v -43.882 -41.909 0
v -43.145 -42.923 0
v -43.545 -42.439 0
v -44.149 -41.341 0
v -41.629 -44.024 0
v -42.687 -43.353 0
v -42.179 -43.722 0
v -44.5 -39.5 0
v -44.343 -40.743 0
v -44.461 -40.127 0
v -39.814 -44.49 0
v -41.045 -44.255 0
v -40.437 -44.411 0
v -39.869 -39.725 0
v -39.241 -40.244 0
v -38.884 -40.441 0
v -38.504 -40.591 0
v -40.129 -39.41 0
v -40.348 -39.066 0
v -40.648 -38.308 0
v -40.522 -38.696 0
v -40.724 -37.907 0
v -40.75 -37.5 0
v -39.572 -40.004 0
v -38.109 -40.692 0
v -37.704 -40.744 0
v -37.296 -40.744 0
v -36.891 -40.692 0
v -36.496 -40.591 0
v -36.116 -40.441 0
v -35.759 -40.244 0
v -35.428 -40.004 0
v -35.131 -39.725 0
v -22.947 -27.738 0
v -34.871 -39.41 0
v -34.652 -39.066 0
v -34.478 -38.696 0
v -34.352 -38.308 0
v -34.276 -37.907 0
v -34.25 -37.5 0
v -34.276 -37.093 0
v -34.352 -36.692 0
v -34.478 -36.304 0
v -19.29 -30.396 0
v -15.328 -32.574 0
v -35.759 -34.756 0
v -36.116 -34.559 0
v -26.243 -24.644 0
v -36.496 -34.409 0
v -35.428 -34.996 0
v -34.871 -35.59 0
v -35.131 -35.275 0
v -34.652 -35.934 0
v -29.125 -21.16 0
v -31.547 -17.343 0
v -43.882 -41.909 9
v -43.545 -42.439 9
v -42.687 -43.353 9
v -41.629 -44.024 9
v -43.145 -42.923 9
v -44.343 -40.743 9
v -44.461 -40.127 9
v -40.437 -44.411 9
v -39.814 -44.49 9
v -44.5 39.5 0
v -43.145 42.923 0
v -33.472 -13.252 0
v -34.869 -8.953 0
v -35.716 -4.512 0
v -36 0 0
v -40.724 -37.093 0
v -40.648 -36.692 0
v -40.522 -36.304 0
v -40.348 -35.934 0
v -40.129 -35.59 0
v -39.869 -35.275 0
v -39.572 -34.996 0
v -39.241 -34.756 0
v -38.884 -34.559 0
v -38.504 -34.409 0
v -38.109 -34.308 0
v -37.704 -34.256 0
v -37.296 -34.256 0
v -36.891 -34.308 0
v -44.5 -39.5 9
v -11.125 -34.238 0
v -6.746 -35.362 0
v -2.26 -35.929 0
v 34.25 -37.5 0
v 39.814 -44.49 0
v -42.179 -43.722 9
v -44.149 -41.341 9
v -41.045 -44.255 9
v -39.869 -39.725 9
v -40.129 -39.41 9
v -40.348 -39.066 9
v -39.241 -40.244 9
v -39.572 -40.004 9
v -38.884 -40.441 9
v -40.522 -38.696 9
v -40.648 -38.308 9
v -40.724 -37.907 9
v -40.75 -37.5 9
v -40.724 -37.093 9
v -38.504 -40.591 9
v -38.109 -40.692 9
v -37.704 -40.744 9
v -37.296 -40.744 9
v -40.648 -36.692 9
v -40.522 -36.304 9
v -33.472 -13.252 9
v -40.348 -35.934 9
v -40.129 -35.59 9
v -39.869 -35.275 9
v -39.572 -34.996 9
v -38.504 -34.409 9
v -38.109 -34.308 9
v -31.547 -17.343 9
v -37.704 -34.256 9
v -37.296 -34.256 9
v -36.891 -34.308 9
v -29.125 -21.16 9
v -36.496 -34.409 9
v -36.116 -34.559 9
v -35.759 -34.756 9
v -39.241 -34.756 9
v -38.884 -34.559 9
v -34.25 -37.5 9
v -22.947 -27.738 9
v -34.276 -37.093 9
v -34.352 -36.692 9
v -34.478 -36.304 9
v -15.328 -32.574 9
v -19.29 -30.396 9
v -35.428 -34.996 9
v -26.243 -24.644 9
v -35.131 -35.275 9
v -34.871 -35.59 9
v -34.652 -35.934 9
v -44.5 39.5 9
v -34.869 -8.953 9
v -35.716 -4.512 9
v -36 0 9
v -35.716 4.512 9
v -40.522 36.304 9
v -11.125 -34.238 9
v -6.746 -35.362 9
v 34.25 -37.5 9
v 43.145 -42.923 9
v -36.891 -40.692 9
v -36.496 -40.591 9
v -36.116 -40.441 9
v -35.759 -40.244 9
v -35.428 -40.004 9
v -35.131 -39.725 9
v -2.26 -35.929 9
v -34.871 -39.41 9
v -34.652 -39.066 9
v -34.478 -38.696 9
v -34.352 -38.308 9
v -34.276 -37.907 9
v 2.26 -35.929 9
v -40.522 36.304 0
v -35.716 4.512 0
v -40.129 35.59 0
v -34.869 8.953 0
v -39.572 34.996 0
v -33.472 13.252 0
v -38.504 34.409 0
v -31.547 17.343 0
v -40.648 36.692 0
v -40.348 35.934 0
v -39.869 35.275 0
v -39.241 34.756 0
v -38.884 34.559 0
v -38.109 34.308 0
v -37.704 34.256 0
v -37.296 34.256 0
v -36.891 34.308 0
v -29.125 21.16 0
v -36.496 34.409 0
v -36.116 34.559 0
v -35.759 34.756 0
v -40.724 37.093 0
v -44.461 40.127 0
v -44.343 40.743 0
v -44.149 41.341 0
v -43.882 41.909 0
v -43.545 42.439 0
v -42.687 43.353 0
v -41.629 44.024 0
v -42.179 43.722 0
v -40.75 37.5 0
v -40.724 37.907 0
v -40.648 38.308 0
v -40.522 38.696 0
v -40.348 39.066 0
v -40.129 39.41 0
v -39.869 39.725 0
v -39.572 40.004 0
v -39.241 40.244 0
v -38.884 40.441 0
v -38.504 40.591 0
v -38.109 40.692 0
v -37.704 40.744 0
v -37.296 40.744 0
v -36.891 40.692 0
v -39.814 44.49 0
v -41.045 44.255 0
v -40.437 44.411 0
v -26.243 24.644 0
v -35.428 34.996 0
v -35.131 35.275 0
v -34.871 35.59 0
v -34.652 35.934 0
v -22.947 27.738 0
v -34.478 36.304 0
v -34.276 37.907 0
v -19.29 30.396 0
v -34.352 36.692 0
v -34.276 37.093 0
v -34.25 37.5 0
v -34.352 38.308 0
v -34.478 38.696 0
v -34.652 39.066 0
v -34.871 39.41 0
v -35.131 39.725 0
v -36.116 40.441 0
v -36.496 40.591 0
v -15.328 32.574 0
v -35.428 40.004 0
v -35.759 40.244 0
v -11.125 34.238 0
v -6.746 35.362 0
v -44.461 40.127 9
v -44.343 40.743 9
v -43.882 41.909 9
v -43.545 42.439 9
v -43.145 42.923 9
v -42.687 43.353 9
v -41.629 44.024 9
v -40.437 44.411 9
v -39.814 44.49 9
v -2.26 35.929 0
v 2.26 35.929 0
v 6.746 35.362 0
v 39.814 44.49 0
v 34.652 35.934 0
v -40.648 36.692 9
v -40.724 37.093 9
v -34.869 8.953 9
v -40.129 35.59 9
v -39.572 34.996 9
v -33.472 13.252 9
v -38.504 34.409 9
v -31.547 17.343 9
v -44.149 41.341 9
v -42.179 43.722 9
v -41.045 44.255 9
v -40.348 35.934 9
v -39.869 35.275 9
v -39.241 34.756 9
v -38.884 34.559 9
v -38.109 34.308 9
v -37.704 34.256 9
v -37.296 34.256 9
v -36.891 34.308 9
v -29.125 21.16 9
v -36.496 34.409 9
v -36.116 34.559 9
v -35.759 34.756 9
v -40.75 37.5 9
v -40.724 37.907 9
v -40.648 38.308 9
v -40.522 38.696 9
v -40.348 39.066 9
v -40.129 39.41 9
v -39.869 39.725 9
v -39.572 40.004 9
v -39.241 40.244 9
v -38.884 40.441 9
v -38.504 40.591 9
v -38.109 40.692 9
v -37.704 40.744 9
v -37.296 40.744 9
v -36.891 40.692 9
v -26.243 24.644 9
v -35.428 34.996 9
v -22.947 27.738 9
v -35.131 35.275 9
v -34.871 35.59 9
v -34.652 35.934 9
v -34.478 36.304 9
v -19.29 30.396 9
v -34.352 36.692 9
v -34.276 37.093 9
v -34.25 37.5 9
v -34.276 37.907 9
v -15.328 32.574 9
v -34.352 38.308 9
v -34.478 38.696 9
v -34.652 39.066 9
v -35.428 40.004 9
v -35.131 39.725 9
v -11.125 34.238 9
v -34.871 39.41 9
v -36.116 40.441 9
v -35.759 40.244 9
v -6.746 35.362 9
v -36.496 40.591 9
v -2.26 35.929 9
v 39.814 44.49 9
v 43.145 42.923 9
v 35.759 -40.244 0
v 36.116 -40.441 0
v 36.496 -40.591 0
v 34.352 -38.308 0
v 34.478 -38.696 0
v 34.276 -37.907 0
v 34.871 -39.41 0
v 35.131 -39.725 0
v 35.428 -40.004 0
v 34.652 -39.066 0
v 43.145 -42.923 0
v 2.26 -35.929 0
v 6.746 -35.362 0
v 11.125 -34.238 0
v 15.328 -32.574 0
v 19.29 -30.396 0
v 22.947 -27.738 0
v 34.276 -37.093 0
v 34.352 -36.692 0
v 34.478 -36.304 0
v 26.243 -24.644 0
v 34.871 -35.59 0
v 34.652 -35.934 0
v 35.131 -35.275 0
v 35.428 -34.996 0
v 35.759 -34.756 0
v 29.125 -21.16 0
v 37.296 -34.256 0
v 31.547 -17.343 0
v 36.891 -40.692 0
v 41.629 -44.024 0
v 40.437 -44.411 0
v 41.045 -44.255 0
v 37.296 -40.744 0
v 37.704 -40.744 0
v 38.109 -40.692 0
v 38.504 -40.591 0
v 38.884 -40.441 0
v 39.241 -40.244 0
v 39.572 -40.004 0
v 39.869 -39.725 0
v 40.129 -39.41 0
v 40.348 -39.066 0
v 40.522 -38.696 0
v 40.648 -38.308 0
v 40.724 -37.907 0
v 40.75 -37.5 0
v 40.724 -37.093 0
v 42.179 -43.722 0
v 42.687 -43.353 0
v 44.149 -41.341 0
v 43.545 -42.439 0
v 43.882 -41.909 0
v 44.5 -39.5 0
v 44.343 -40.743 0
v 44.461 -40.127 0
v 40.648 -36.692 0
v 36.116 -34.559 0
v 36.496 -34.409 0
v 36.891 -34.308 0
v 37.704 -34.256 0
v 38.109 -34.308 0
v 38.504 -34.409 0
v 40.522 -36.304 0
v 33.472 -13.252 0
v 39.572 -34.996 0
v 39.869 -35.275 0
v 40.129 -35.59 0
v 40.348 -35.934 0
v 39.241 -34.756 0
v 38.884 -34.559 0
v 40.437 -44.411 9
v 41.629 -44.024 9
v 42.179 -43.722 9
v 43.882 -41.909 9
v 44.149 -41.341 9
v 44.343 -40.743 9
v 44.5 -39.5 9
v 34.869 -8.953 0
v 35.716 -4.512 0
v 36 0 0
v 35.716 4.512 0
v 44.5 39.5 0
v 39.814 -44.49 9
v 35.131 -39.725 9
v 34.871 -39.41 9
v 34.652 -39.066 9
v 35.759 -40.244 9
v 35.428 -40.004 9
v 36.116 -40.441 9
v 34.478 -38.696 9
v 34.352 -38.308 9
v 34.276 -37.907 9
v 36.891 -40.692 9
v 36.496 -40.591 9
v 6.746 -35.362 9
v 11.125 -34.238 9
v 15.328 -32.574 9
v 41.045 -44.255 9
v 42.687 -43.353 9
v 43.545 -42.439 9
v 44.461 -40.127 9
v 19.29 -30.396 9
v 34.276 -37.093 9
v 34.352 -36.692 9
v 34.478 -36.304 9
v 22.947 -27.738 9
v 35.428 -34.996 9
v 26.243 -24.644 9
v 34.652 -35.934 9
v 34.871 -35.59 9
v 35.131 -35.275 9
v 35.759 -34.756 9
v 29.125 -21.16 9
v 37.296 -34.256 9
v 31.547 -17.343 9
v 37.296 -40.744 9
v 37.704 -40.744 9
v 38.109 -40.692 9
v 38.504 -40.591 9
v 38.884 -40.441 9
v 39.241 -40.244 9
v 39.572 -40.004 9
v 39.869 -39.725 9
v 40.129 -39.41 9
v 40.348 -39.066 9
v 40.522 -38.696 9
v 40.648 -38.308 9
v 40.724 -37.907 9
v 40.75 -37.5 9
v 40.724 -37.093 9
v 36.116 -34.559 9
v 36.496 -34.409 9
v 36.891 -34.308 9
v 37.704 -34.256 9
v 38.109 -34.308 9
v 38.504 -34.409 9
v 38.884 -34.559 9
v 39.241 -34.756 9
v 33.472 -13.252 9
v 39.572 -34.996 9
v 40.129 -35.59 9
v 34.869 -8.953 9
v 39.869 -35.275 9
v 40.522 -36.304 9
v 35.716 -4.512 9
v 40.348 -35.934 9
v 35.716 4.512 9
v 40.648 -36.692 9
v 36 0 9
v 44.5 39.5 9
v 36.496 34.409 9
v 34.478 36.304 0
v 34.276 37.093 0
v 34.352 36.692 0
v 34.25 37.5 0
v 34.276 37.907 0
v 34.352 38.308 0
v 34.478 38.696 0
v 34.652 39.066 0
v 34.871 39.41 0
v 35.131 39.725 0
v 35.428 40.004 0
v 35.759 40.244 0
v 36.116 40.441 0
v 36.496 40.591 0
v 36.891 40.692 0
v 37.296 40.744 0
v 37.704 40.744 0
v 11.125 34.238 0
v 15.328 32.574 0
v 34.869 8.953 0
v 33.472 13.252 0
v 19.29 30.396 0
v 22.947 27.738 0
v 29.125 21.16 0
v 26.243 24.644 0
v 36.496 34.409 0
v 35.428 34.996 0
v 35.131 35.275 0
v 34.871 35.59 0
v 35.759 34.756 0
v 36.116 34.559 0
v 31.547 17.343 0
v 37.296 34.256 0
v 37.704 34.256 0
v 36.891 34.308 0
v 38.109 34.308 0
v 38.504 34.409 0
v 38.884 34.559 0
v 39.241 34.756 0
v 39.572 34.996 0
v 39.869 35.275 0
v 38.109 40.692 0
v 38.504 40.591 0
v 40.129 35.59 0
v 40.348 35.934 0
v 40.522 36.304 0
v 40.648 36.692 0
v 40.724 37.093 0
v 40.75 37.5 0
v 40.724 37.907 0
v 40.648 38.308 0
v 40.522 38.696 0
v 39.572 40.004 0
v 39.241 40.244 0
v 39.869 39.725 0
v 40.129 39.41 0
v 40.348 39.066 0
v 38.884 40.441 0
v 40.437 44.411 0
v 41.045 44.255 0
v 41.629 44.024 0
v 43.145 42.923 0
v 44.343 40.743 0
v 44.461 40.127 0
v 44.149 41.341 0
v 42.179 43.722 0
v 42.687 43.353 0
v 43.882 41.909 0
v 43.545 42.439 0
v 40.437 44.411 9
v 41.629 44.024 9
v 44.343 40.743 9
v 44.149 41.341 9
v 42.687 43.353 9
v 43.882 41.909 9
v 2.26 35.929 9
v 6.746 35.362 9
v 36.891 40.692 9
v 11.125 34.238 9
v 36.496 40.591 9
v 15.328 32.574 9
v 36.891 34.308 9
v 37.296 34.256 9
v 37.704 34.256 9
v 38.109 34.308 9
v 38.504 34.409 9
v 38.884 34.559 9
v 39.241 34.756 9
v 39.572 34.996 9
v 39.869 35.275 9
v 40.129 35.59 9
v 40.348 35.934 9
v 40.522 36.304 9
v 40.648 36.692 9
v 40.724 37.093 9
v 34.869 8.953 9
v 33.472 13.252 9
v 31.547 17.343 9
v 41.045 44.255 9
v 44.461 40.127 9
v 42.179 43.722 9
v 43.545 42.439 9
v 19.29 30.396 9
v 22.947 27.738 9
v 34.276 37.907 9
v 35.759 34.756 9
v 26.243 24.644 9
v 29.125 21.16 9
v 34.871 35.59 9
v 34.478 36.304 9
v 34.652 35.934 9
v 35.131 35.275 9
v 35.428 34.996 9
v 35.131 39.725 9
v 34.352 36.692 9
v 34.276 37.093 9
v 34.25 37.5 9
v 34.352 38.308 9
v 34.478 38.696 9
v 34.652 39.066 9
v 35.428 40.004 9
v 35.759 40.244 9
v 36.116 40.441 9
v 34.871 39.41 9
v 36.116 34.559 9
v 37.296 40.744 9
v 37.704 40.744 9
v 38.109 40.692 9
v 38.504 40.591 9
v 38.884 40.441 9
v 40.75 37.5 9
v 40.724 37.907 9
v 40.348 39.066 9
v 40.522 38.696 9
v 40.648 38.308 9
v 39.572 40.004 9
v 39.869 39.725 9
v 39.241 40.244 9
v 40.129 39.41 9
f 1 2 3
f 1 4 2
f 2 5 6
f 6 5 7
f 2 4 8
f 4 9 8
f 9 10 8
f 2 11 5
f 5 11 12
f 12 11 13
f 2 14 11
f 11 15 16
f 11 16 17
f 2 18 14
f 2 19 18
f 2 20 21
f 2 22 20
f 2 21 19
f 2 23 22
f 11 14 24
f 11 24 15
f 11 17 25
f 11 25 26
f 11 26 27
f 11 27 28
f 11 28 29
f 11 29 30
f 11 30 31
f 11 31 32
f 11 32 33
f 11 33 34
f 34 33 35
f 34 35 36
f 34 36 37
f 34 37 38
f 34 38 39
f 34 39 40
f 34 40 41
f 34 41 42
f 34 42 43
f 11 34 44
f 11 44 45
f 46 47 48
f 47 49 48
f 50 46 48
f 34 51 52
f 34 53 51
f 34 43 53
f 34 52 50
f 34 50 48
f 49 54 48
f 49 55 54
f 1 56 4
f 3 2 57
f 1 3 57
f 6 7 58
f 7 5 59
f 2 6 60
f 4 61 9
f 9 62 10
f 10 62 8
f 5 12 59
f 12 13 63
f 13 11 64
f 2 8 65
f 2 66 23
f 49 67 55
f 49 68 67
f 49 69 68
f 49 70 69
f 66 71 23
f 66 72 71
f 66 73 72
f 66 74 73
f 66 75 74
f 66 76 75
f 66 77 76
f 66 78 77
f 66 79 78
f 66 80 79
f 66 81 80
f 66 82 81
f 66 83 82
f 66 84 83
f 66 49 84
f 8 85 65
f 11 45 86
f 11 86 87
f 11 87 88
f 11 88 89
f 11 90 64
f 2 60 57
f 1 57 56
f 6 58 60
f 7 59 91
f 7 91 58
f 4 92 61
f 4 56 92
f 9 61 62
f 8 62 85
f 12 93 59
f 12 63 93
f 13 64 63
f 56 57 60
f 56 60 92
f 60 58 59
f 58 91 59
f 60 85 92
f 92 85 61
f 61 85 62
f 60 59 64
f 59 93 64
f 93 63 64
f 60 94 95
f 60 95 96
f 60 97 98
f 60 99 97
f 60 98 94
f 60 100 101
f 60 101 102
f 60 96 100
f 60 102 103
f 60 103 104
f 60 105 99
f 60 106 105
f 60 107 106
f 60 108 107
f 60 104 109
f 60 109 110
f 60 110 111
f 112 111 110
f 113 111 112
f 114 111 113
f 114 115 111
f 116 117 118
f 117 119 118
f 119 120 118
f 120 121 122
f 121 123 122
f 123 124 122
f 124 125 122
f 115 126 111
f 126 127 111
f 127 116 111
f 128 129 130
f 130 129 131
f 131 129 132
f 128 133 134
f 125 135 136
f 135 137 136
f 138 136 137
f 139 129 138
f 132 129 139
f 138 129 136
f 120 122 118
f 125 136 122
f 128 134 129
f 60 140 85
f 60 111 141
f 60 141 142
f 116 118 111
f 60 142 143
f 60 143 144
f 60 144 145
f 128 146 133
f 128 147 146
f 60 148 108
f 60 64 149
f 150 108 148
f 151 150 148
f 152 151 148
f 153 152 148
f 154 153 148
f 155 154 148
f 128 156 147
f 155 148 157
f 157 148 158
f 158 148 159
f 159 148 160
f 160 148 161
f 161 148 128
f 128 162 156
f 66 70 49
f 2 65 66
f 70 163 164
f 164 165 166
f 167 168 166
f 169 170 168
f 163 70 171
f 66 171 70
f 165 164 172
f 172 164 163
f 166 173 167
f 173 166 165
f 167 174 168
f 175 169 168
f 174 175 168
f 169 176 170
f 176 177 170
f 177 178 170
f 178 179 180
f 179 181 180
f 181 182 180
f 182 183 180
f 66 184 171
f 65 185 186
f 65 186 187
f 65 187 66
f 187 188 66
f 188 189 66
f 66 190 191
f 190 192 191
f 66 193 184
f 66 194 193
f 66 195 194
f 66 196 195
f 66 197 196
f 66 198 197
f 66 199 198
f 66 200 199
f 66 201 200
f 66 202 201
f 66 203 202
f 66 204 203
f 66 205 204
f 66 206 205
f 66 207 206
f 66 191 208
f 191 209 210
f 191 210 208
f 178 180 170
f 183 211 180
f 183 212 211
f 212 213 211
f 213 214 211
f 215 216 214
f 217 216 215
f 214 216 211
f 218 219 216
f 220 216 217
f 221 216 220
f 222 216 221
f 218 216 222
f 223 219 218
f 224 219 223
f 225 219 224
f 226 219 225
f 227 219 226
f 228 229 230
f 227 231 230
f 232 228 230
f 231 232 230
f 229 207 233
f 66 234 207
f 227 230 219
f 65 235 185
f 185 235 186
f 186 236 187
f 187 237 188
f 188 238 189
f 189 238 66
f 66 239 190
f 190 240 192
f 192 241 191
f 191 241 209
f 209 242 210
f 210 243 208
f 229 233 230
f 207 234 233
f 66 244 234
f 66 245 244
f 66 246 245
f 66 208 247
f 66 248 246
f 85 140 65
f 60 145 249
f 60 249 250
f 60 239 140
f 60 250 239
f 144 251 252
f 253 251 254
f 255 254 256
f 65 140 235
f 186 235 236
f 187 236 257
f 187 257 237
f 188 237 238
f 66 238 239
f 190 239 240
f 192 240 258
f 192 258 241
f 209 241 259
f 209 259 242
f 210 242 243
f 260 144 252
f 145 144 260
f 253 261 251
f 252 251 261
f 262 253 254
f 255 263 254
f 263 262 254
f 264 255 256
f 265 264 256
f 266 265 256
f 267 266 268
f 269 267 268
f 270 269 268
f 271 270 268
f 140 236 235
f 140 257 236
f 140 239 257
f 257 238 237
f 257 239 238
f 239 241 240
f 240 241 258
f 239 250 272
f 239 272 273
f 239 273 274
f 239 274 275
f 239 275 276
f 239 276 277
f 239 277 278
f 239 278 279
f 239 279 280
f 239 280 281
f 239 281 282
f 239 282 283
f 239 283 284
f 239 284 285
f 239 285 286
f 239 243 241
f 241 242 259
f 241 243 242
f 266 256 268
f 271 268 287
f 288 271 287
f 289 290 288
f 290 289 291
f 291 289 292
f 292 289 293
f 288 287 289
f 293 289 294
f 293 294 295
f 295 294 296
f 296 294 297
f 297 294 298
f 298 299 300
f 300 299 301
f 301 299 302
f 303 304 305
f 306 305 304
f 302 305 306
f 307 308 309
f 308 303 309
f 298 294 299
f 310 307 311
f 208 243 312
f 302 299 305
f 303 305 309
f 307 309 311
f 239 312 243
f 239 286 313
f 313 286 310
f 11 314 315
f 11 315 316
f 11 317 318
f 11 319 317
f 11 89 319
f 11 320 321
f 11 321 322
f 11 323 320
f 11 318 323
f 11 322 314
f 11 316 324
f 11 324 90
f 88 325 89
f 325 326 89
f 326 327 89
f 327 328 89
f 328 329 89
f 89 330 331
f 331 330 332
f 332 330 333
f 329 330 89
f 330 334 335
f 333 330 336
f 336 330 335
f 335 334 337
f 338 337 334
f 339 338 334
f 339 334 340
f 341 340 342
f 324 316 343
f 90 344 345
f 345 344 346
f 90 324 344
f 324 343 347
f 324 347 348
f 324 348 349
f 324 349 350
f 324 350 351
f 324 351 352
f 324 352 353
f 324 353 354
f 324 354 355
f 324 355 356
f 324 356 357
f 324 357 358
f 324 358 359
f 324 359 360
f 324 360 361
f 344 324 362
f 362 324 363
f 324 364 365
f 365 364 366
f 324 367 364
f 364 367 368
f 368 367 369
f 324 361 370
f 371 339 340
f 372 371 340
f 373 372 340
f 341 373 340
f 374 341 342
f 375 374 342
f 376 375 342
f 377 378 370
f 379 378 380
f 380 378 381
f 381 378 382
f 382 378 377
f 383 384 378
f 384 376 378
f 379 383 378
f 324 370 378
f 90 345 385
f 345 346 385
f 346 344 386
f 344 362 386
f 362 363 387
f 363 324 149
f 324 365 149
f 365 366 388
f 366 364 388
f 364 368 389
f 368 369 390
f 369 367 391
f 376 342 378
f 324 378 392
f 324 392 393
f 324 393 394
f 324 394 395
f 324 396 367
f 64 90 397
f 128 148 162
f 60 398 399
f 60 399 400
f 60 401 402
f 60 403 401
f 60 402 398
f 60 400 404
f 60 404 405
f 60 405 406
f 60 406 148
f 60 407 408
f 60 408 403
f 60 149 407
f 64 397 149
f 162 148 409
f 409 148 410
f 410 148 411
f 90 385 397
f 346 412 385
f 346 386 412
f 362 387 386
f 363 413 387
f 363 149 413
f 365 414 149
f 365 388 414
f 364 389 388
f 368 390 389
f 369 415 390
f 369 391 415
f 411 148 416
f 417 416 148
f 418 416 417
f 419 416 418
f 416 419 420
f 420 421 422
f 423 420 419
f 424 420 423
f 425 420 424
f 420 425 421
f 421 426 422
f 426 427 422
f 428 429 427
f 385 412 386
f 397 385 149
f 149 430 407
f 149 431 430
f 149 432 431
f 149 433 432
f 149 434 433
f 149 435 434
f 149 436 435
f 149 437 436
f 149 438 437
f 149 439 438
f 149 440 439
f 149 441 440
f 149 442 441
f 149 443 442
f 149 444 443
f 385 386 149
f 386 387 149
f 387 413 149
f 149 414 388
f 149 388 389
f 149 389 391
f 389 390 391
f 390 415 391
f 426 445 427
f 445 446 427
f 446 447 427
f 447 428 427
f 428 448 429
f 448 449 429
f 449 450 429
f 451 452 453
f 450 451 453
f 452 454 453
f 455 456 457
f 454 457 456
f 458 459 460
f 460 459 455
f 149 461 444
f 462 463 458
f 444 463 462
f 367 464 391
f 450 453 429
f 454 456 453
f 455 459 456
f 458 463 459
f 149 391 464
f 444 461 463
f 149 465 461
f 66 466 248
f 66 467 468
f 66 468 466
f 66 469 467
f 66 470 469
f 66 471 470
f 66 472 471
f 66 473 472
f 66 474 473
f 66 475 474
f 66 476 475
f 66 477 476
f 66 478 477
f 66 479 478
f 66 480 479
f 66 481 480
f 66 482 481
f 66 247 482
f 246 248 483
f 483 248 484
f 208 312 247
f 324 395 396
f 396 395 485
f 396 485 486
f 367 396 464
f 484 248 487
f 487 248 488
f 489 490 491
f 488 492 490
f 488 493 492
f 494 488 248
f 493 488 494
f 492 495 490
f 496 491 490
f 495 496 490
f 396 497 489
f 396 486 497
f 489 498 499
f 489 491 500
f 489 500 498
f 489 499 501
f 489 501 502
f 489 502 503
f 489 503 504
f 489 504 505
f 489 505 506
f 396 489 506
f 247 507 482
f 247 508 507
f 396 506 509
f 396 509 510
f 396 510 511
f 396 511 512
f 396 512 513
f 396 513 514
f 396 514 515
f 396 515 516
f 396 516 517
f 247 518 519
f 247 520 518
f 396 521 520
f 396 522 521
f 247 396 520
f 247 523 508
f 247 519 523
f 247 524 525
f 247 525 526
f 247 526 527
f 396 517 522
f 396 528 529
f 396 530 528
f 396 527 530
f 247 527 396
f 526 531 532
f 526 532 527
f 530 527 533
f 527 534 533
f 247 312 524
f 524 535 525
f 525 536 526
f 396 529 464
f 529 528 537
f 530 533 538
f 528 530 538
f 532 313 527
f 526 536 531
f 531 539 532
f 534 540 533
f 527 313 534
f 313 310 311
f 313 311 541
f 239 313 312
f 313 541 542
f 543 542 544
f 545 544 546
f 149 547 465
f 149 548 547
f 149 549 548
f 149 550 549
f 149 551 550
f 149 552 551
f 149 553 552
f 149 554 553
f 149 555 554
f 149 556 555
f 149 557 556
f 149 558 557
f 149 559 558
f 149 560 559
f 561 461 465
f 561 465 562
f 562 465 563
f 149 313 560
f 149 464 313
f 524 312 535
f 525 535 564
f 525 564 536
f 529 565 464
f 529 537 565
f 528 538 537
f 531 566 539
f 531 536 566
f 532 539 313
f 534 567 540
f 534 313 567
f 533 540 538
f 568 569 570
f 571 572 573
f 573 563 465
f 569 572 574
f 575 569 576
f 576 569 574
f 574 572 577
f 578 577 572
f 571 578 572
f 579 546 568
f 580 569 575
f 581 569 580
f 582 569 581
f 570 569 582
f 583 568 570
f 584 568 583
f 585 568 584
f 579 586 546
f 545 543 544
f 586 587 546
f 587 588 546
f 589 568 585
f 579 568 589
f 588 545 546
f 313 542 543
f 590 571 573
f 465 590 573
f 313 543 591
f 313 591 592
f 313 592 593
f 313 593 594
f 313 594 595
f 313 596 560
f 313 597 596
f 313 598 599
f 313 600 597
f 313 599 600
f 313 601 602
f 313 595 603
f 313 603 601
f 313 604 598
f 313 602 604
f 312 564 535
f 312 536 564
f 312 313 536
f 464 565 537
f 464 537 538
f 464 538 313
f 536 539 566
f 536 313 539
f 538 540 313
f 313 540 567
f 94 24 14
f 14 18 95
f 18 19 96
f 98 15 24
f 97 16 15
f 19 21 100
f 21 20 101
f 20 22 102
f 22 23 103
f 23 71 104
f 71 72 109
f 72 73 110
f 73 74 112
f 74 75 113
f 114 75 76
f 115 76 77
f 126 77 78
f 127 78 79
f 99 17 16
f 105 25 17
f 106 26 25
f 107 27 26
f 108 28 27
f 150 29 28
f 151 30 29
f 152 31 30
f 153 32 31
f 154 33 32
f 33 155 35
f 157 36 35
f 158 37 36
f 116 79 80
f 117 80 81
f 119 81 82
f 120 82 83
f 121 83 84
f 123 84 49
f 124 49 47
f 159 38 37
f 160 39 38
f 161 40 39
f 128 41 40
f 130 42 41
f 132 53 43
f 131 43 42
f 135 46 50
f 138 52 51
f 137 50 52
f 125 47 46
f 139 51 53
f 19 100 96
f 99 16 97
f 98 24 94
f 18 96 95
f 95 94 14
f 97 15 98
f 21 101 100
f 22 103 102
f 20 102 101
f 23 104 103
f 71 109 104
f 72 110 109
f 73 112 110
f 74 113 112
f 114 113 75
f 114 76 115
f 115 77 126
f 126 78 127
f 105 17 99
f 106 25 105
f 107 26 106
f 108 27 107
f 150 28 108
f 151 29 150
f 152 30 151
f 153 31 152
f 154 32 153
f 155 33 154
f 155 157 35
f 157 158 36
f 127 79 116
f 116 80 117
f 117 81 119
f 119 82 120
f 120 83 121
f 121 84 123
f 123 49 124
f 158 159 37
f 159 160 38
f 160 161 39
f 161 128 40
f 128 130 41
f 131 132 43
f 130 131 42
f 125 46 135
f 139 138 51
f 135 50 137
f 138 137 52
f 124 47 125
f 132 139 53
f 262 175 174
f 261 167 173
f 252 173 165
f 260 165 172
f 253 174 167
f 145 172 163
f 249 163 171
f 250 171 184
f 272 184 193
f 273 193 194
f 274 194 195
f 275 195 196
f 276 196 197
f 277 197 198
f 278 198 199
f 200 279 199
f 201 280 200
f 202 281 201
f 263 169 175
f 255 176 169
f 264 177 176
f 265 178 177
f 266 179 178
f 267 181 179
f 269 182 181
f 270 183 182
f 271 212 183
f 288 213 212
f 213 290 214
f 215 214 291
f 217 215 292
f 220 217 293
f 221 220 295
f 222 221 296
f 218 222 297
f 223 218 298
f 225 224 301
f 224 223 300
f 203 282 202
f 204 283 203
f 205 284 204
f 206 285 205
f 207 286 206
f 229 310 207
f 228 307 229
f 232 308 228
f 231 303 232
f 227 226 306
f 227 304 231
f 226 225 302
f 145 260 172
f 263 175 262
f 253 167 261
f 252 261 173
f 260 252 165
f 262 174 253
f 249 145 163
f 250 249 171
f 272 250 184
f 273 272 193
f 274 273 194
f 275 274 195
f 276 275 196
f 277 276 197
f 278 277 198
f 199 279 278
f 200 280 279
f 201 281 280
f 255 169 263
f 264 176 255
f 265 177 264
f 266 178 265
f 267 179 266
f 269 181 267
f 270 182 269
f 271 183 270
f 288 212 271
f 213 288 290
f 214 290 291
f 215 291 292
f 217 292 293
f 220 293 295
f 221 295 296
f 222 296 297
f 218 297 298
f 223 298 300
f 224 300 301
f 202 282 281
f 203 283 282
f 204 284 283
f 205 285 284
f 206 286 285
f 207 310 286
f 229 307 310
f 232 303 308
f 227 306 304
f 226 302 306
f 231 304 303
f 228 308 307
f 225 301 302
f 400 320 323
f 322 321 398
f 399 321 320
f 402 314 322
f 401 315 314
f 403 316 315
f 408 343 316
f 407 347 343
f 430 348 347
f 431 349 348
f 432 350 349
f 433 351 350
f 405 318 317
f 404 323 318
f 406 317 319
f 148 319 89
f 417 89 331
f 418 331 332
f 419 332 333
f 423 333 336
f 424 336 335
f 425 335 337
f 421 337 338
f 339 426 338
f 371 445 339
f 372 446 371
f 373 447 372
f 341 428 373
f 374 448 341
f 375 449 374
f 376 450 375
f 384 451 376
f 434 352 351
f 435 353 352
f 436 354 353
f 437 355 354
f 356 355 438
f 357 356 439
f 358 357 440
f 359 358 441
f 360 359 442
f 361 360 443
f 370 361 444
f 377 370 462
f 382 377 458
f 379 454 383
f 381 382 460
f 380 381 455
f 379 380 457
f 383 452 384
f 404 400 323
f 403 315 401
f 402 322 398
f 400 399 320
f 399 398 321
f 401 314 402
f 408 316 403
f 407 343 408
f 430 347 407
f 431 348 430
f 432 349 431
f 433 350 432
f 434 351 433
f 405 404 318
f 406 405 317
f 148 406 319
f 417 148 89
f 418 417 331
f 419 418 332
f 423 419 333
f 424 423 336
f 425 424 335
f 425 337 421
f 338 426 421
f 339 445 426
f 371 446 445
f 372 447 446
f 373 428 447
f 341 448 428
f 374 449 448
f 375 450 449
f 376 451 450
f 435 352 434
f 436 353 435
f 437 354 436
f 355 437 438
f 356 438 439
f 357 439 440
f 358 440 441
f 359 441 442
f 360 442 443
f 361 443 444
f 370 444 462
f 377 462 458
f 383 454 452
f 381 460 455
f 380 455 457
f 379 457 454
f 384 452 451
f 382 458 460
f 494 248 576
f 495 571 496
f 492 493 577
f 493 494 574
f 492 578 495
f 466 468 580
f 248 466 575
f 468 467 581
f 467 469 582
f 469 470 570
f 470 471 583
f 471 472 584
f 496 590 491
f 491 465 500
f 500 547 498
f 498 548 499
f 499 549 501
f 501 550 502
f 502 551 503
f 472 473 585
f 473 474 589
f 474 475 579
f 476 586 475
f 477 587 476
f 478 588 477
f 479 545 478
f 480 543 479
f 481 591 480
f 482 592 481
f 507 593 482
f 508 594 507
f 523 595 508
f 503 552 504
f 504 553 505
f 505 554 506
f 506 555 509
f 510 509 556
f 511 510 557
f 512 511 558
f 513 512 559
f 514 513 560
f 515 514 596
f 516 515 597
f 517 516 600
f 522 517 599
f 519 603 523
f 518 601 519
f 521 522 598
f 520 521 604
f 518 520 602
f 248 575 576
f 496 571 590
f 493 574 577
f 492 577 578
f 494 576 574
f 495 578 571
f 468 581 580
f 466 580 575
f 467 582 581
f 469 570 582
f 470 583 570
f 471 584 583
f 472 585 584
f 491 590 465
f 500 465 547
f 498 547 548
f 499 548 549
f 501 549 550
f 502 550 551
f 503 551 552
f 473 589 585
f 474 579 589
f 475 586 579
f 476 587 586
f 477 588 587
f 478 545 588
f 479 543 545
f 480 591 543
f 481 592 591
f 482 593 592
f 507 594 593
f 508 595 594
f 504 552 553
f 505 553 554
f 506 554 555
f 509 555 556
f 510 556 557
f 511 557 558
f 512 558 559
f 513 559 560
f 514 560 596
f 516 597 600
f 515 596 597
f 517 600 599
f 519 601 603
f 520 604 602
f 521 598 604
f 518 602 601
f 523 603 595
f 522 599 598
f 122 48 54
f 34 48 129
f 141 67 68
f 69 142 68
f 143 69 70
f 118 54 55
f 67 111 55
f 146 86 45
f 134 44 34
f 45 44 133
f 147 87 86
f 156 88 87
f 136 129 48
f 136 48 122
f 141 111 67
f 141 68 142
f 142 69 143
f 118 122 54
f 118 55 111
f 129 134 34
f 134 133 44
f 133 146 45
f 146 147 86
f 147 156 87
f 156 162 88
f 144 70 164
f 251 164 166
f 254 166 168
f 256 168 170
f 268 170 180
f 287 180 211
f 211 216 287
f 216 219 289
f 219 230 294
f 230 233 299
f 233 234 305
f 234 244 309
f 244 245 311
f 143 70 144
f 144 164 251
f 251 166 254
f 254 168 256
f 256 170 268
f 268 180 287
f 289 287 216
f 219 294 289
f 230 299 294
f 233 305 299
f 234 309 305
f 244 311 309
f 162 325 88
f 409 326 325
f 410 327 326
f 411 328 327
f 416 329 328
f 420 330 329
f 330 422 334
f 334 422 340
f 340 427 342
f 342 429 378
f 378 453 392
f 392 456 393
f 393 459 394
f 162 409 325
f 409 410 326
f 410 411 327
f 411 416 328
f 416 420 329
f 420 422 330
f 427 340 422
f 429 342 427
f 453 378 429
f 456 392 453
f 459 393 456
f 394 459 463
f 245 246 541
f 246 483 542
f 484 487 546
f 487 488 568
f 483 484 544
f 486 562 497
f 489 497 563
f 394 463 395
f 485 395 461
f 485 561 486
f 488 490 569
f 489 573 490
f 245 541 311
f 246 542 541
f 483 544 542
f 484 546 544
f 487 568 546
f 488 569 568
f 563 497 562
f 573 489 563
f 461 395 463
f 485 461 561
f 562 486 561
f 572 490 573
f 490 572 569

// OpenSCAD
$fn = 50;

difference() {
	union() {
		hull() {
			translate(v = [-39.5, 39.5, 0]) {
				cylinder(h = 9, r = 5);
			}
			translate(v = [39.5, 39.5, 0]) {
				cylinder(h = 9, r = 5);
			}
			translate(v = [-39.5, -39.5, 0]) {
				cylinder(h = 9, r = 5);
			}
			translate(v = [39.5, -39.5, 0]) {
				cylinder(h = 9, r = 5);
			}
		}
	}
	union() {
		translate(v = [-37.5, -37.5, -100.0]) {
			cylinder(h = 200, r = 3.25);
		}
		translate(v = [-37.5, 37.5, -100.0]) {
			cylinder(h = 200, r = 3.25);
		}
		translate(v = [37.5, -37.5, -100.0]) {
			cylinder(h = 200, r = 3.25);
		}
		translate(v = [37.5, 37.5, -100.0]) {
			cylinder(h = 200, r = 3.25);
		}
		translate(v = [-37.5, -37.5, -100.0]) {
			cylinder(h = 200, r = 1.8);
		}
		translate(v = [-37.5, 37.5, -100.0]) {
			cylinder(h = 200, r = 1.8);
		}
		translate(v = [37.5, -37.5, -100.0]) {
			cylinder(h = 200, r = 1.8);
		}
		translate(v = [37.5, 37.5, -100.0]) {
			cylinder(h = 200, r = 1.8);
		}
		cylinder(h = 9, r = 36.0);
	}
}
